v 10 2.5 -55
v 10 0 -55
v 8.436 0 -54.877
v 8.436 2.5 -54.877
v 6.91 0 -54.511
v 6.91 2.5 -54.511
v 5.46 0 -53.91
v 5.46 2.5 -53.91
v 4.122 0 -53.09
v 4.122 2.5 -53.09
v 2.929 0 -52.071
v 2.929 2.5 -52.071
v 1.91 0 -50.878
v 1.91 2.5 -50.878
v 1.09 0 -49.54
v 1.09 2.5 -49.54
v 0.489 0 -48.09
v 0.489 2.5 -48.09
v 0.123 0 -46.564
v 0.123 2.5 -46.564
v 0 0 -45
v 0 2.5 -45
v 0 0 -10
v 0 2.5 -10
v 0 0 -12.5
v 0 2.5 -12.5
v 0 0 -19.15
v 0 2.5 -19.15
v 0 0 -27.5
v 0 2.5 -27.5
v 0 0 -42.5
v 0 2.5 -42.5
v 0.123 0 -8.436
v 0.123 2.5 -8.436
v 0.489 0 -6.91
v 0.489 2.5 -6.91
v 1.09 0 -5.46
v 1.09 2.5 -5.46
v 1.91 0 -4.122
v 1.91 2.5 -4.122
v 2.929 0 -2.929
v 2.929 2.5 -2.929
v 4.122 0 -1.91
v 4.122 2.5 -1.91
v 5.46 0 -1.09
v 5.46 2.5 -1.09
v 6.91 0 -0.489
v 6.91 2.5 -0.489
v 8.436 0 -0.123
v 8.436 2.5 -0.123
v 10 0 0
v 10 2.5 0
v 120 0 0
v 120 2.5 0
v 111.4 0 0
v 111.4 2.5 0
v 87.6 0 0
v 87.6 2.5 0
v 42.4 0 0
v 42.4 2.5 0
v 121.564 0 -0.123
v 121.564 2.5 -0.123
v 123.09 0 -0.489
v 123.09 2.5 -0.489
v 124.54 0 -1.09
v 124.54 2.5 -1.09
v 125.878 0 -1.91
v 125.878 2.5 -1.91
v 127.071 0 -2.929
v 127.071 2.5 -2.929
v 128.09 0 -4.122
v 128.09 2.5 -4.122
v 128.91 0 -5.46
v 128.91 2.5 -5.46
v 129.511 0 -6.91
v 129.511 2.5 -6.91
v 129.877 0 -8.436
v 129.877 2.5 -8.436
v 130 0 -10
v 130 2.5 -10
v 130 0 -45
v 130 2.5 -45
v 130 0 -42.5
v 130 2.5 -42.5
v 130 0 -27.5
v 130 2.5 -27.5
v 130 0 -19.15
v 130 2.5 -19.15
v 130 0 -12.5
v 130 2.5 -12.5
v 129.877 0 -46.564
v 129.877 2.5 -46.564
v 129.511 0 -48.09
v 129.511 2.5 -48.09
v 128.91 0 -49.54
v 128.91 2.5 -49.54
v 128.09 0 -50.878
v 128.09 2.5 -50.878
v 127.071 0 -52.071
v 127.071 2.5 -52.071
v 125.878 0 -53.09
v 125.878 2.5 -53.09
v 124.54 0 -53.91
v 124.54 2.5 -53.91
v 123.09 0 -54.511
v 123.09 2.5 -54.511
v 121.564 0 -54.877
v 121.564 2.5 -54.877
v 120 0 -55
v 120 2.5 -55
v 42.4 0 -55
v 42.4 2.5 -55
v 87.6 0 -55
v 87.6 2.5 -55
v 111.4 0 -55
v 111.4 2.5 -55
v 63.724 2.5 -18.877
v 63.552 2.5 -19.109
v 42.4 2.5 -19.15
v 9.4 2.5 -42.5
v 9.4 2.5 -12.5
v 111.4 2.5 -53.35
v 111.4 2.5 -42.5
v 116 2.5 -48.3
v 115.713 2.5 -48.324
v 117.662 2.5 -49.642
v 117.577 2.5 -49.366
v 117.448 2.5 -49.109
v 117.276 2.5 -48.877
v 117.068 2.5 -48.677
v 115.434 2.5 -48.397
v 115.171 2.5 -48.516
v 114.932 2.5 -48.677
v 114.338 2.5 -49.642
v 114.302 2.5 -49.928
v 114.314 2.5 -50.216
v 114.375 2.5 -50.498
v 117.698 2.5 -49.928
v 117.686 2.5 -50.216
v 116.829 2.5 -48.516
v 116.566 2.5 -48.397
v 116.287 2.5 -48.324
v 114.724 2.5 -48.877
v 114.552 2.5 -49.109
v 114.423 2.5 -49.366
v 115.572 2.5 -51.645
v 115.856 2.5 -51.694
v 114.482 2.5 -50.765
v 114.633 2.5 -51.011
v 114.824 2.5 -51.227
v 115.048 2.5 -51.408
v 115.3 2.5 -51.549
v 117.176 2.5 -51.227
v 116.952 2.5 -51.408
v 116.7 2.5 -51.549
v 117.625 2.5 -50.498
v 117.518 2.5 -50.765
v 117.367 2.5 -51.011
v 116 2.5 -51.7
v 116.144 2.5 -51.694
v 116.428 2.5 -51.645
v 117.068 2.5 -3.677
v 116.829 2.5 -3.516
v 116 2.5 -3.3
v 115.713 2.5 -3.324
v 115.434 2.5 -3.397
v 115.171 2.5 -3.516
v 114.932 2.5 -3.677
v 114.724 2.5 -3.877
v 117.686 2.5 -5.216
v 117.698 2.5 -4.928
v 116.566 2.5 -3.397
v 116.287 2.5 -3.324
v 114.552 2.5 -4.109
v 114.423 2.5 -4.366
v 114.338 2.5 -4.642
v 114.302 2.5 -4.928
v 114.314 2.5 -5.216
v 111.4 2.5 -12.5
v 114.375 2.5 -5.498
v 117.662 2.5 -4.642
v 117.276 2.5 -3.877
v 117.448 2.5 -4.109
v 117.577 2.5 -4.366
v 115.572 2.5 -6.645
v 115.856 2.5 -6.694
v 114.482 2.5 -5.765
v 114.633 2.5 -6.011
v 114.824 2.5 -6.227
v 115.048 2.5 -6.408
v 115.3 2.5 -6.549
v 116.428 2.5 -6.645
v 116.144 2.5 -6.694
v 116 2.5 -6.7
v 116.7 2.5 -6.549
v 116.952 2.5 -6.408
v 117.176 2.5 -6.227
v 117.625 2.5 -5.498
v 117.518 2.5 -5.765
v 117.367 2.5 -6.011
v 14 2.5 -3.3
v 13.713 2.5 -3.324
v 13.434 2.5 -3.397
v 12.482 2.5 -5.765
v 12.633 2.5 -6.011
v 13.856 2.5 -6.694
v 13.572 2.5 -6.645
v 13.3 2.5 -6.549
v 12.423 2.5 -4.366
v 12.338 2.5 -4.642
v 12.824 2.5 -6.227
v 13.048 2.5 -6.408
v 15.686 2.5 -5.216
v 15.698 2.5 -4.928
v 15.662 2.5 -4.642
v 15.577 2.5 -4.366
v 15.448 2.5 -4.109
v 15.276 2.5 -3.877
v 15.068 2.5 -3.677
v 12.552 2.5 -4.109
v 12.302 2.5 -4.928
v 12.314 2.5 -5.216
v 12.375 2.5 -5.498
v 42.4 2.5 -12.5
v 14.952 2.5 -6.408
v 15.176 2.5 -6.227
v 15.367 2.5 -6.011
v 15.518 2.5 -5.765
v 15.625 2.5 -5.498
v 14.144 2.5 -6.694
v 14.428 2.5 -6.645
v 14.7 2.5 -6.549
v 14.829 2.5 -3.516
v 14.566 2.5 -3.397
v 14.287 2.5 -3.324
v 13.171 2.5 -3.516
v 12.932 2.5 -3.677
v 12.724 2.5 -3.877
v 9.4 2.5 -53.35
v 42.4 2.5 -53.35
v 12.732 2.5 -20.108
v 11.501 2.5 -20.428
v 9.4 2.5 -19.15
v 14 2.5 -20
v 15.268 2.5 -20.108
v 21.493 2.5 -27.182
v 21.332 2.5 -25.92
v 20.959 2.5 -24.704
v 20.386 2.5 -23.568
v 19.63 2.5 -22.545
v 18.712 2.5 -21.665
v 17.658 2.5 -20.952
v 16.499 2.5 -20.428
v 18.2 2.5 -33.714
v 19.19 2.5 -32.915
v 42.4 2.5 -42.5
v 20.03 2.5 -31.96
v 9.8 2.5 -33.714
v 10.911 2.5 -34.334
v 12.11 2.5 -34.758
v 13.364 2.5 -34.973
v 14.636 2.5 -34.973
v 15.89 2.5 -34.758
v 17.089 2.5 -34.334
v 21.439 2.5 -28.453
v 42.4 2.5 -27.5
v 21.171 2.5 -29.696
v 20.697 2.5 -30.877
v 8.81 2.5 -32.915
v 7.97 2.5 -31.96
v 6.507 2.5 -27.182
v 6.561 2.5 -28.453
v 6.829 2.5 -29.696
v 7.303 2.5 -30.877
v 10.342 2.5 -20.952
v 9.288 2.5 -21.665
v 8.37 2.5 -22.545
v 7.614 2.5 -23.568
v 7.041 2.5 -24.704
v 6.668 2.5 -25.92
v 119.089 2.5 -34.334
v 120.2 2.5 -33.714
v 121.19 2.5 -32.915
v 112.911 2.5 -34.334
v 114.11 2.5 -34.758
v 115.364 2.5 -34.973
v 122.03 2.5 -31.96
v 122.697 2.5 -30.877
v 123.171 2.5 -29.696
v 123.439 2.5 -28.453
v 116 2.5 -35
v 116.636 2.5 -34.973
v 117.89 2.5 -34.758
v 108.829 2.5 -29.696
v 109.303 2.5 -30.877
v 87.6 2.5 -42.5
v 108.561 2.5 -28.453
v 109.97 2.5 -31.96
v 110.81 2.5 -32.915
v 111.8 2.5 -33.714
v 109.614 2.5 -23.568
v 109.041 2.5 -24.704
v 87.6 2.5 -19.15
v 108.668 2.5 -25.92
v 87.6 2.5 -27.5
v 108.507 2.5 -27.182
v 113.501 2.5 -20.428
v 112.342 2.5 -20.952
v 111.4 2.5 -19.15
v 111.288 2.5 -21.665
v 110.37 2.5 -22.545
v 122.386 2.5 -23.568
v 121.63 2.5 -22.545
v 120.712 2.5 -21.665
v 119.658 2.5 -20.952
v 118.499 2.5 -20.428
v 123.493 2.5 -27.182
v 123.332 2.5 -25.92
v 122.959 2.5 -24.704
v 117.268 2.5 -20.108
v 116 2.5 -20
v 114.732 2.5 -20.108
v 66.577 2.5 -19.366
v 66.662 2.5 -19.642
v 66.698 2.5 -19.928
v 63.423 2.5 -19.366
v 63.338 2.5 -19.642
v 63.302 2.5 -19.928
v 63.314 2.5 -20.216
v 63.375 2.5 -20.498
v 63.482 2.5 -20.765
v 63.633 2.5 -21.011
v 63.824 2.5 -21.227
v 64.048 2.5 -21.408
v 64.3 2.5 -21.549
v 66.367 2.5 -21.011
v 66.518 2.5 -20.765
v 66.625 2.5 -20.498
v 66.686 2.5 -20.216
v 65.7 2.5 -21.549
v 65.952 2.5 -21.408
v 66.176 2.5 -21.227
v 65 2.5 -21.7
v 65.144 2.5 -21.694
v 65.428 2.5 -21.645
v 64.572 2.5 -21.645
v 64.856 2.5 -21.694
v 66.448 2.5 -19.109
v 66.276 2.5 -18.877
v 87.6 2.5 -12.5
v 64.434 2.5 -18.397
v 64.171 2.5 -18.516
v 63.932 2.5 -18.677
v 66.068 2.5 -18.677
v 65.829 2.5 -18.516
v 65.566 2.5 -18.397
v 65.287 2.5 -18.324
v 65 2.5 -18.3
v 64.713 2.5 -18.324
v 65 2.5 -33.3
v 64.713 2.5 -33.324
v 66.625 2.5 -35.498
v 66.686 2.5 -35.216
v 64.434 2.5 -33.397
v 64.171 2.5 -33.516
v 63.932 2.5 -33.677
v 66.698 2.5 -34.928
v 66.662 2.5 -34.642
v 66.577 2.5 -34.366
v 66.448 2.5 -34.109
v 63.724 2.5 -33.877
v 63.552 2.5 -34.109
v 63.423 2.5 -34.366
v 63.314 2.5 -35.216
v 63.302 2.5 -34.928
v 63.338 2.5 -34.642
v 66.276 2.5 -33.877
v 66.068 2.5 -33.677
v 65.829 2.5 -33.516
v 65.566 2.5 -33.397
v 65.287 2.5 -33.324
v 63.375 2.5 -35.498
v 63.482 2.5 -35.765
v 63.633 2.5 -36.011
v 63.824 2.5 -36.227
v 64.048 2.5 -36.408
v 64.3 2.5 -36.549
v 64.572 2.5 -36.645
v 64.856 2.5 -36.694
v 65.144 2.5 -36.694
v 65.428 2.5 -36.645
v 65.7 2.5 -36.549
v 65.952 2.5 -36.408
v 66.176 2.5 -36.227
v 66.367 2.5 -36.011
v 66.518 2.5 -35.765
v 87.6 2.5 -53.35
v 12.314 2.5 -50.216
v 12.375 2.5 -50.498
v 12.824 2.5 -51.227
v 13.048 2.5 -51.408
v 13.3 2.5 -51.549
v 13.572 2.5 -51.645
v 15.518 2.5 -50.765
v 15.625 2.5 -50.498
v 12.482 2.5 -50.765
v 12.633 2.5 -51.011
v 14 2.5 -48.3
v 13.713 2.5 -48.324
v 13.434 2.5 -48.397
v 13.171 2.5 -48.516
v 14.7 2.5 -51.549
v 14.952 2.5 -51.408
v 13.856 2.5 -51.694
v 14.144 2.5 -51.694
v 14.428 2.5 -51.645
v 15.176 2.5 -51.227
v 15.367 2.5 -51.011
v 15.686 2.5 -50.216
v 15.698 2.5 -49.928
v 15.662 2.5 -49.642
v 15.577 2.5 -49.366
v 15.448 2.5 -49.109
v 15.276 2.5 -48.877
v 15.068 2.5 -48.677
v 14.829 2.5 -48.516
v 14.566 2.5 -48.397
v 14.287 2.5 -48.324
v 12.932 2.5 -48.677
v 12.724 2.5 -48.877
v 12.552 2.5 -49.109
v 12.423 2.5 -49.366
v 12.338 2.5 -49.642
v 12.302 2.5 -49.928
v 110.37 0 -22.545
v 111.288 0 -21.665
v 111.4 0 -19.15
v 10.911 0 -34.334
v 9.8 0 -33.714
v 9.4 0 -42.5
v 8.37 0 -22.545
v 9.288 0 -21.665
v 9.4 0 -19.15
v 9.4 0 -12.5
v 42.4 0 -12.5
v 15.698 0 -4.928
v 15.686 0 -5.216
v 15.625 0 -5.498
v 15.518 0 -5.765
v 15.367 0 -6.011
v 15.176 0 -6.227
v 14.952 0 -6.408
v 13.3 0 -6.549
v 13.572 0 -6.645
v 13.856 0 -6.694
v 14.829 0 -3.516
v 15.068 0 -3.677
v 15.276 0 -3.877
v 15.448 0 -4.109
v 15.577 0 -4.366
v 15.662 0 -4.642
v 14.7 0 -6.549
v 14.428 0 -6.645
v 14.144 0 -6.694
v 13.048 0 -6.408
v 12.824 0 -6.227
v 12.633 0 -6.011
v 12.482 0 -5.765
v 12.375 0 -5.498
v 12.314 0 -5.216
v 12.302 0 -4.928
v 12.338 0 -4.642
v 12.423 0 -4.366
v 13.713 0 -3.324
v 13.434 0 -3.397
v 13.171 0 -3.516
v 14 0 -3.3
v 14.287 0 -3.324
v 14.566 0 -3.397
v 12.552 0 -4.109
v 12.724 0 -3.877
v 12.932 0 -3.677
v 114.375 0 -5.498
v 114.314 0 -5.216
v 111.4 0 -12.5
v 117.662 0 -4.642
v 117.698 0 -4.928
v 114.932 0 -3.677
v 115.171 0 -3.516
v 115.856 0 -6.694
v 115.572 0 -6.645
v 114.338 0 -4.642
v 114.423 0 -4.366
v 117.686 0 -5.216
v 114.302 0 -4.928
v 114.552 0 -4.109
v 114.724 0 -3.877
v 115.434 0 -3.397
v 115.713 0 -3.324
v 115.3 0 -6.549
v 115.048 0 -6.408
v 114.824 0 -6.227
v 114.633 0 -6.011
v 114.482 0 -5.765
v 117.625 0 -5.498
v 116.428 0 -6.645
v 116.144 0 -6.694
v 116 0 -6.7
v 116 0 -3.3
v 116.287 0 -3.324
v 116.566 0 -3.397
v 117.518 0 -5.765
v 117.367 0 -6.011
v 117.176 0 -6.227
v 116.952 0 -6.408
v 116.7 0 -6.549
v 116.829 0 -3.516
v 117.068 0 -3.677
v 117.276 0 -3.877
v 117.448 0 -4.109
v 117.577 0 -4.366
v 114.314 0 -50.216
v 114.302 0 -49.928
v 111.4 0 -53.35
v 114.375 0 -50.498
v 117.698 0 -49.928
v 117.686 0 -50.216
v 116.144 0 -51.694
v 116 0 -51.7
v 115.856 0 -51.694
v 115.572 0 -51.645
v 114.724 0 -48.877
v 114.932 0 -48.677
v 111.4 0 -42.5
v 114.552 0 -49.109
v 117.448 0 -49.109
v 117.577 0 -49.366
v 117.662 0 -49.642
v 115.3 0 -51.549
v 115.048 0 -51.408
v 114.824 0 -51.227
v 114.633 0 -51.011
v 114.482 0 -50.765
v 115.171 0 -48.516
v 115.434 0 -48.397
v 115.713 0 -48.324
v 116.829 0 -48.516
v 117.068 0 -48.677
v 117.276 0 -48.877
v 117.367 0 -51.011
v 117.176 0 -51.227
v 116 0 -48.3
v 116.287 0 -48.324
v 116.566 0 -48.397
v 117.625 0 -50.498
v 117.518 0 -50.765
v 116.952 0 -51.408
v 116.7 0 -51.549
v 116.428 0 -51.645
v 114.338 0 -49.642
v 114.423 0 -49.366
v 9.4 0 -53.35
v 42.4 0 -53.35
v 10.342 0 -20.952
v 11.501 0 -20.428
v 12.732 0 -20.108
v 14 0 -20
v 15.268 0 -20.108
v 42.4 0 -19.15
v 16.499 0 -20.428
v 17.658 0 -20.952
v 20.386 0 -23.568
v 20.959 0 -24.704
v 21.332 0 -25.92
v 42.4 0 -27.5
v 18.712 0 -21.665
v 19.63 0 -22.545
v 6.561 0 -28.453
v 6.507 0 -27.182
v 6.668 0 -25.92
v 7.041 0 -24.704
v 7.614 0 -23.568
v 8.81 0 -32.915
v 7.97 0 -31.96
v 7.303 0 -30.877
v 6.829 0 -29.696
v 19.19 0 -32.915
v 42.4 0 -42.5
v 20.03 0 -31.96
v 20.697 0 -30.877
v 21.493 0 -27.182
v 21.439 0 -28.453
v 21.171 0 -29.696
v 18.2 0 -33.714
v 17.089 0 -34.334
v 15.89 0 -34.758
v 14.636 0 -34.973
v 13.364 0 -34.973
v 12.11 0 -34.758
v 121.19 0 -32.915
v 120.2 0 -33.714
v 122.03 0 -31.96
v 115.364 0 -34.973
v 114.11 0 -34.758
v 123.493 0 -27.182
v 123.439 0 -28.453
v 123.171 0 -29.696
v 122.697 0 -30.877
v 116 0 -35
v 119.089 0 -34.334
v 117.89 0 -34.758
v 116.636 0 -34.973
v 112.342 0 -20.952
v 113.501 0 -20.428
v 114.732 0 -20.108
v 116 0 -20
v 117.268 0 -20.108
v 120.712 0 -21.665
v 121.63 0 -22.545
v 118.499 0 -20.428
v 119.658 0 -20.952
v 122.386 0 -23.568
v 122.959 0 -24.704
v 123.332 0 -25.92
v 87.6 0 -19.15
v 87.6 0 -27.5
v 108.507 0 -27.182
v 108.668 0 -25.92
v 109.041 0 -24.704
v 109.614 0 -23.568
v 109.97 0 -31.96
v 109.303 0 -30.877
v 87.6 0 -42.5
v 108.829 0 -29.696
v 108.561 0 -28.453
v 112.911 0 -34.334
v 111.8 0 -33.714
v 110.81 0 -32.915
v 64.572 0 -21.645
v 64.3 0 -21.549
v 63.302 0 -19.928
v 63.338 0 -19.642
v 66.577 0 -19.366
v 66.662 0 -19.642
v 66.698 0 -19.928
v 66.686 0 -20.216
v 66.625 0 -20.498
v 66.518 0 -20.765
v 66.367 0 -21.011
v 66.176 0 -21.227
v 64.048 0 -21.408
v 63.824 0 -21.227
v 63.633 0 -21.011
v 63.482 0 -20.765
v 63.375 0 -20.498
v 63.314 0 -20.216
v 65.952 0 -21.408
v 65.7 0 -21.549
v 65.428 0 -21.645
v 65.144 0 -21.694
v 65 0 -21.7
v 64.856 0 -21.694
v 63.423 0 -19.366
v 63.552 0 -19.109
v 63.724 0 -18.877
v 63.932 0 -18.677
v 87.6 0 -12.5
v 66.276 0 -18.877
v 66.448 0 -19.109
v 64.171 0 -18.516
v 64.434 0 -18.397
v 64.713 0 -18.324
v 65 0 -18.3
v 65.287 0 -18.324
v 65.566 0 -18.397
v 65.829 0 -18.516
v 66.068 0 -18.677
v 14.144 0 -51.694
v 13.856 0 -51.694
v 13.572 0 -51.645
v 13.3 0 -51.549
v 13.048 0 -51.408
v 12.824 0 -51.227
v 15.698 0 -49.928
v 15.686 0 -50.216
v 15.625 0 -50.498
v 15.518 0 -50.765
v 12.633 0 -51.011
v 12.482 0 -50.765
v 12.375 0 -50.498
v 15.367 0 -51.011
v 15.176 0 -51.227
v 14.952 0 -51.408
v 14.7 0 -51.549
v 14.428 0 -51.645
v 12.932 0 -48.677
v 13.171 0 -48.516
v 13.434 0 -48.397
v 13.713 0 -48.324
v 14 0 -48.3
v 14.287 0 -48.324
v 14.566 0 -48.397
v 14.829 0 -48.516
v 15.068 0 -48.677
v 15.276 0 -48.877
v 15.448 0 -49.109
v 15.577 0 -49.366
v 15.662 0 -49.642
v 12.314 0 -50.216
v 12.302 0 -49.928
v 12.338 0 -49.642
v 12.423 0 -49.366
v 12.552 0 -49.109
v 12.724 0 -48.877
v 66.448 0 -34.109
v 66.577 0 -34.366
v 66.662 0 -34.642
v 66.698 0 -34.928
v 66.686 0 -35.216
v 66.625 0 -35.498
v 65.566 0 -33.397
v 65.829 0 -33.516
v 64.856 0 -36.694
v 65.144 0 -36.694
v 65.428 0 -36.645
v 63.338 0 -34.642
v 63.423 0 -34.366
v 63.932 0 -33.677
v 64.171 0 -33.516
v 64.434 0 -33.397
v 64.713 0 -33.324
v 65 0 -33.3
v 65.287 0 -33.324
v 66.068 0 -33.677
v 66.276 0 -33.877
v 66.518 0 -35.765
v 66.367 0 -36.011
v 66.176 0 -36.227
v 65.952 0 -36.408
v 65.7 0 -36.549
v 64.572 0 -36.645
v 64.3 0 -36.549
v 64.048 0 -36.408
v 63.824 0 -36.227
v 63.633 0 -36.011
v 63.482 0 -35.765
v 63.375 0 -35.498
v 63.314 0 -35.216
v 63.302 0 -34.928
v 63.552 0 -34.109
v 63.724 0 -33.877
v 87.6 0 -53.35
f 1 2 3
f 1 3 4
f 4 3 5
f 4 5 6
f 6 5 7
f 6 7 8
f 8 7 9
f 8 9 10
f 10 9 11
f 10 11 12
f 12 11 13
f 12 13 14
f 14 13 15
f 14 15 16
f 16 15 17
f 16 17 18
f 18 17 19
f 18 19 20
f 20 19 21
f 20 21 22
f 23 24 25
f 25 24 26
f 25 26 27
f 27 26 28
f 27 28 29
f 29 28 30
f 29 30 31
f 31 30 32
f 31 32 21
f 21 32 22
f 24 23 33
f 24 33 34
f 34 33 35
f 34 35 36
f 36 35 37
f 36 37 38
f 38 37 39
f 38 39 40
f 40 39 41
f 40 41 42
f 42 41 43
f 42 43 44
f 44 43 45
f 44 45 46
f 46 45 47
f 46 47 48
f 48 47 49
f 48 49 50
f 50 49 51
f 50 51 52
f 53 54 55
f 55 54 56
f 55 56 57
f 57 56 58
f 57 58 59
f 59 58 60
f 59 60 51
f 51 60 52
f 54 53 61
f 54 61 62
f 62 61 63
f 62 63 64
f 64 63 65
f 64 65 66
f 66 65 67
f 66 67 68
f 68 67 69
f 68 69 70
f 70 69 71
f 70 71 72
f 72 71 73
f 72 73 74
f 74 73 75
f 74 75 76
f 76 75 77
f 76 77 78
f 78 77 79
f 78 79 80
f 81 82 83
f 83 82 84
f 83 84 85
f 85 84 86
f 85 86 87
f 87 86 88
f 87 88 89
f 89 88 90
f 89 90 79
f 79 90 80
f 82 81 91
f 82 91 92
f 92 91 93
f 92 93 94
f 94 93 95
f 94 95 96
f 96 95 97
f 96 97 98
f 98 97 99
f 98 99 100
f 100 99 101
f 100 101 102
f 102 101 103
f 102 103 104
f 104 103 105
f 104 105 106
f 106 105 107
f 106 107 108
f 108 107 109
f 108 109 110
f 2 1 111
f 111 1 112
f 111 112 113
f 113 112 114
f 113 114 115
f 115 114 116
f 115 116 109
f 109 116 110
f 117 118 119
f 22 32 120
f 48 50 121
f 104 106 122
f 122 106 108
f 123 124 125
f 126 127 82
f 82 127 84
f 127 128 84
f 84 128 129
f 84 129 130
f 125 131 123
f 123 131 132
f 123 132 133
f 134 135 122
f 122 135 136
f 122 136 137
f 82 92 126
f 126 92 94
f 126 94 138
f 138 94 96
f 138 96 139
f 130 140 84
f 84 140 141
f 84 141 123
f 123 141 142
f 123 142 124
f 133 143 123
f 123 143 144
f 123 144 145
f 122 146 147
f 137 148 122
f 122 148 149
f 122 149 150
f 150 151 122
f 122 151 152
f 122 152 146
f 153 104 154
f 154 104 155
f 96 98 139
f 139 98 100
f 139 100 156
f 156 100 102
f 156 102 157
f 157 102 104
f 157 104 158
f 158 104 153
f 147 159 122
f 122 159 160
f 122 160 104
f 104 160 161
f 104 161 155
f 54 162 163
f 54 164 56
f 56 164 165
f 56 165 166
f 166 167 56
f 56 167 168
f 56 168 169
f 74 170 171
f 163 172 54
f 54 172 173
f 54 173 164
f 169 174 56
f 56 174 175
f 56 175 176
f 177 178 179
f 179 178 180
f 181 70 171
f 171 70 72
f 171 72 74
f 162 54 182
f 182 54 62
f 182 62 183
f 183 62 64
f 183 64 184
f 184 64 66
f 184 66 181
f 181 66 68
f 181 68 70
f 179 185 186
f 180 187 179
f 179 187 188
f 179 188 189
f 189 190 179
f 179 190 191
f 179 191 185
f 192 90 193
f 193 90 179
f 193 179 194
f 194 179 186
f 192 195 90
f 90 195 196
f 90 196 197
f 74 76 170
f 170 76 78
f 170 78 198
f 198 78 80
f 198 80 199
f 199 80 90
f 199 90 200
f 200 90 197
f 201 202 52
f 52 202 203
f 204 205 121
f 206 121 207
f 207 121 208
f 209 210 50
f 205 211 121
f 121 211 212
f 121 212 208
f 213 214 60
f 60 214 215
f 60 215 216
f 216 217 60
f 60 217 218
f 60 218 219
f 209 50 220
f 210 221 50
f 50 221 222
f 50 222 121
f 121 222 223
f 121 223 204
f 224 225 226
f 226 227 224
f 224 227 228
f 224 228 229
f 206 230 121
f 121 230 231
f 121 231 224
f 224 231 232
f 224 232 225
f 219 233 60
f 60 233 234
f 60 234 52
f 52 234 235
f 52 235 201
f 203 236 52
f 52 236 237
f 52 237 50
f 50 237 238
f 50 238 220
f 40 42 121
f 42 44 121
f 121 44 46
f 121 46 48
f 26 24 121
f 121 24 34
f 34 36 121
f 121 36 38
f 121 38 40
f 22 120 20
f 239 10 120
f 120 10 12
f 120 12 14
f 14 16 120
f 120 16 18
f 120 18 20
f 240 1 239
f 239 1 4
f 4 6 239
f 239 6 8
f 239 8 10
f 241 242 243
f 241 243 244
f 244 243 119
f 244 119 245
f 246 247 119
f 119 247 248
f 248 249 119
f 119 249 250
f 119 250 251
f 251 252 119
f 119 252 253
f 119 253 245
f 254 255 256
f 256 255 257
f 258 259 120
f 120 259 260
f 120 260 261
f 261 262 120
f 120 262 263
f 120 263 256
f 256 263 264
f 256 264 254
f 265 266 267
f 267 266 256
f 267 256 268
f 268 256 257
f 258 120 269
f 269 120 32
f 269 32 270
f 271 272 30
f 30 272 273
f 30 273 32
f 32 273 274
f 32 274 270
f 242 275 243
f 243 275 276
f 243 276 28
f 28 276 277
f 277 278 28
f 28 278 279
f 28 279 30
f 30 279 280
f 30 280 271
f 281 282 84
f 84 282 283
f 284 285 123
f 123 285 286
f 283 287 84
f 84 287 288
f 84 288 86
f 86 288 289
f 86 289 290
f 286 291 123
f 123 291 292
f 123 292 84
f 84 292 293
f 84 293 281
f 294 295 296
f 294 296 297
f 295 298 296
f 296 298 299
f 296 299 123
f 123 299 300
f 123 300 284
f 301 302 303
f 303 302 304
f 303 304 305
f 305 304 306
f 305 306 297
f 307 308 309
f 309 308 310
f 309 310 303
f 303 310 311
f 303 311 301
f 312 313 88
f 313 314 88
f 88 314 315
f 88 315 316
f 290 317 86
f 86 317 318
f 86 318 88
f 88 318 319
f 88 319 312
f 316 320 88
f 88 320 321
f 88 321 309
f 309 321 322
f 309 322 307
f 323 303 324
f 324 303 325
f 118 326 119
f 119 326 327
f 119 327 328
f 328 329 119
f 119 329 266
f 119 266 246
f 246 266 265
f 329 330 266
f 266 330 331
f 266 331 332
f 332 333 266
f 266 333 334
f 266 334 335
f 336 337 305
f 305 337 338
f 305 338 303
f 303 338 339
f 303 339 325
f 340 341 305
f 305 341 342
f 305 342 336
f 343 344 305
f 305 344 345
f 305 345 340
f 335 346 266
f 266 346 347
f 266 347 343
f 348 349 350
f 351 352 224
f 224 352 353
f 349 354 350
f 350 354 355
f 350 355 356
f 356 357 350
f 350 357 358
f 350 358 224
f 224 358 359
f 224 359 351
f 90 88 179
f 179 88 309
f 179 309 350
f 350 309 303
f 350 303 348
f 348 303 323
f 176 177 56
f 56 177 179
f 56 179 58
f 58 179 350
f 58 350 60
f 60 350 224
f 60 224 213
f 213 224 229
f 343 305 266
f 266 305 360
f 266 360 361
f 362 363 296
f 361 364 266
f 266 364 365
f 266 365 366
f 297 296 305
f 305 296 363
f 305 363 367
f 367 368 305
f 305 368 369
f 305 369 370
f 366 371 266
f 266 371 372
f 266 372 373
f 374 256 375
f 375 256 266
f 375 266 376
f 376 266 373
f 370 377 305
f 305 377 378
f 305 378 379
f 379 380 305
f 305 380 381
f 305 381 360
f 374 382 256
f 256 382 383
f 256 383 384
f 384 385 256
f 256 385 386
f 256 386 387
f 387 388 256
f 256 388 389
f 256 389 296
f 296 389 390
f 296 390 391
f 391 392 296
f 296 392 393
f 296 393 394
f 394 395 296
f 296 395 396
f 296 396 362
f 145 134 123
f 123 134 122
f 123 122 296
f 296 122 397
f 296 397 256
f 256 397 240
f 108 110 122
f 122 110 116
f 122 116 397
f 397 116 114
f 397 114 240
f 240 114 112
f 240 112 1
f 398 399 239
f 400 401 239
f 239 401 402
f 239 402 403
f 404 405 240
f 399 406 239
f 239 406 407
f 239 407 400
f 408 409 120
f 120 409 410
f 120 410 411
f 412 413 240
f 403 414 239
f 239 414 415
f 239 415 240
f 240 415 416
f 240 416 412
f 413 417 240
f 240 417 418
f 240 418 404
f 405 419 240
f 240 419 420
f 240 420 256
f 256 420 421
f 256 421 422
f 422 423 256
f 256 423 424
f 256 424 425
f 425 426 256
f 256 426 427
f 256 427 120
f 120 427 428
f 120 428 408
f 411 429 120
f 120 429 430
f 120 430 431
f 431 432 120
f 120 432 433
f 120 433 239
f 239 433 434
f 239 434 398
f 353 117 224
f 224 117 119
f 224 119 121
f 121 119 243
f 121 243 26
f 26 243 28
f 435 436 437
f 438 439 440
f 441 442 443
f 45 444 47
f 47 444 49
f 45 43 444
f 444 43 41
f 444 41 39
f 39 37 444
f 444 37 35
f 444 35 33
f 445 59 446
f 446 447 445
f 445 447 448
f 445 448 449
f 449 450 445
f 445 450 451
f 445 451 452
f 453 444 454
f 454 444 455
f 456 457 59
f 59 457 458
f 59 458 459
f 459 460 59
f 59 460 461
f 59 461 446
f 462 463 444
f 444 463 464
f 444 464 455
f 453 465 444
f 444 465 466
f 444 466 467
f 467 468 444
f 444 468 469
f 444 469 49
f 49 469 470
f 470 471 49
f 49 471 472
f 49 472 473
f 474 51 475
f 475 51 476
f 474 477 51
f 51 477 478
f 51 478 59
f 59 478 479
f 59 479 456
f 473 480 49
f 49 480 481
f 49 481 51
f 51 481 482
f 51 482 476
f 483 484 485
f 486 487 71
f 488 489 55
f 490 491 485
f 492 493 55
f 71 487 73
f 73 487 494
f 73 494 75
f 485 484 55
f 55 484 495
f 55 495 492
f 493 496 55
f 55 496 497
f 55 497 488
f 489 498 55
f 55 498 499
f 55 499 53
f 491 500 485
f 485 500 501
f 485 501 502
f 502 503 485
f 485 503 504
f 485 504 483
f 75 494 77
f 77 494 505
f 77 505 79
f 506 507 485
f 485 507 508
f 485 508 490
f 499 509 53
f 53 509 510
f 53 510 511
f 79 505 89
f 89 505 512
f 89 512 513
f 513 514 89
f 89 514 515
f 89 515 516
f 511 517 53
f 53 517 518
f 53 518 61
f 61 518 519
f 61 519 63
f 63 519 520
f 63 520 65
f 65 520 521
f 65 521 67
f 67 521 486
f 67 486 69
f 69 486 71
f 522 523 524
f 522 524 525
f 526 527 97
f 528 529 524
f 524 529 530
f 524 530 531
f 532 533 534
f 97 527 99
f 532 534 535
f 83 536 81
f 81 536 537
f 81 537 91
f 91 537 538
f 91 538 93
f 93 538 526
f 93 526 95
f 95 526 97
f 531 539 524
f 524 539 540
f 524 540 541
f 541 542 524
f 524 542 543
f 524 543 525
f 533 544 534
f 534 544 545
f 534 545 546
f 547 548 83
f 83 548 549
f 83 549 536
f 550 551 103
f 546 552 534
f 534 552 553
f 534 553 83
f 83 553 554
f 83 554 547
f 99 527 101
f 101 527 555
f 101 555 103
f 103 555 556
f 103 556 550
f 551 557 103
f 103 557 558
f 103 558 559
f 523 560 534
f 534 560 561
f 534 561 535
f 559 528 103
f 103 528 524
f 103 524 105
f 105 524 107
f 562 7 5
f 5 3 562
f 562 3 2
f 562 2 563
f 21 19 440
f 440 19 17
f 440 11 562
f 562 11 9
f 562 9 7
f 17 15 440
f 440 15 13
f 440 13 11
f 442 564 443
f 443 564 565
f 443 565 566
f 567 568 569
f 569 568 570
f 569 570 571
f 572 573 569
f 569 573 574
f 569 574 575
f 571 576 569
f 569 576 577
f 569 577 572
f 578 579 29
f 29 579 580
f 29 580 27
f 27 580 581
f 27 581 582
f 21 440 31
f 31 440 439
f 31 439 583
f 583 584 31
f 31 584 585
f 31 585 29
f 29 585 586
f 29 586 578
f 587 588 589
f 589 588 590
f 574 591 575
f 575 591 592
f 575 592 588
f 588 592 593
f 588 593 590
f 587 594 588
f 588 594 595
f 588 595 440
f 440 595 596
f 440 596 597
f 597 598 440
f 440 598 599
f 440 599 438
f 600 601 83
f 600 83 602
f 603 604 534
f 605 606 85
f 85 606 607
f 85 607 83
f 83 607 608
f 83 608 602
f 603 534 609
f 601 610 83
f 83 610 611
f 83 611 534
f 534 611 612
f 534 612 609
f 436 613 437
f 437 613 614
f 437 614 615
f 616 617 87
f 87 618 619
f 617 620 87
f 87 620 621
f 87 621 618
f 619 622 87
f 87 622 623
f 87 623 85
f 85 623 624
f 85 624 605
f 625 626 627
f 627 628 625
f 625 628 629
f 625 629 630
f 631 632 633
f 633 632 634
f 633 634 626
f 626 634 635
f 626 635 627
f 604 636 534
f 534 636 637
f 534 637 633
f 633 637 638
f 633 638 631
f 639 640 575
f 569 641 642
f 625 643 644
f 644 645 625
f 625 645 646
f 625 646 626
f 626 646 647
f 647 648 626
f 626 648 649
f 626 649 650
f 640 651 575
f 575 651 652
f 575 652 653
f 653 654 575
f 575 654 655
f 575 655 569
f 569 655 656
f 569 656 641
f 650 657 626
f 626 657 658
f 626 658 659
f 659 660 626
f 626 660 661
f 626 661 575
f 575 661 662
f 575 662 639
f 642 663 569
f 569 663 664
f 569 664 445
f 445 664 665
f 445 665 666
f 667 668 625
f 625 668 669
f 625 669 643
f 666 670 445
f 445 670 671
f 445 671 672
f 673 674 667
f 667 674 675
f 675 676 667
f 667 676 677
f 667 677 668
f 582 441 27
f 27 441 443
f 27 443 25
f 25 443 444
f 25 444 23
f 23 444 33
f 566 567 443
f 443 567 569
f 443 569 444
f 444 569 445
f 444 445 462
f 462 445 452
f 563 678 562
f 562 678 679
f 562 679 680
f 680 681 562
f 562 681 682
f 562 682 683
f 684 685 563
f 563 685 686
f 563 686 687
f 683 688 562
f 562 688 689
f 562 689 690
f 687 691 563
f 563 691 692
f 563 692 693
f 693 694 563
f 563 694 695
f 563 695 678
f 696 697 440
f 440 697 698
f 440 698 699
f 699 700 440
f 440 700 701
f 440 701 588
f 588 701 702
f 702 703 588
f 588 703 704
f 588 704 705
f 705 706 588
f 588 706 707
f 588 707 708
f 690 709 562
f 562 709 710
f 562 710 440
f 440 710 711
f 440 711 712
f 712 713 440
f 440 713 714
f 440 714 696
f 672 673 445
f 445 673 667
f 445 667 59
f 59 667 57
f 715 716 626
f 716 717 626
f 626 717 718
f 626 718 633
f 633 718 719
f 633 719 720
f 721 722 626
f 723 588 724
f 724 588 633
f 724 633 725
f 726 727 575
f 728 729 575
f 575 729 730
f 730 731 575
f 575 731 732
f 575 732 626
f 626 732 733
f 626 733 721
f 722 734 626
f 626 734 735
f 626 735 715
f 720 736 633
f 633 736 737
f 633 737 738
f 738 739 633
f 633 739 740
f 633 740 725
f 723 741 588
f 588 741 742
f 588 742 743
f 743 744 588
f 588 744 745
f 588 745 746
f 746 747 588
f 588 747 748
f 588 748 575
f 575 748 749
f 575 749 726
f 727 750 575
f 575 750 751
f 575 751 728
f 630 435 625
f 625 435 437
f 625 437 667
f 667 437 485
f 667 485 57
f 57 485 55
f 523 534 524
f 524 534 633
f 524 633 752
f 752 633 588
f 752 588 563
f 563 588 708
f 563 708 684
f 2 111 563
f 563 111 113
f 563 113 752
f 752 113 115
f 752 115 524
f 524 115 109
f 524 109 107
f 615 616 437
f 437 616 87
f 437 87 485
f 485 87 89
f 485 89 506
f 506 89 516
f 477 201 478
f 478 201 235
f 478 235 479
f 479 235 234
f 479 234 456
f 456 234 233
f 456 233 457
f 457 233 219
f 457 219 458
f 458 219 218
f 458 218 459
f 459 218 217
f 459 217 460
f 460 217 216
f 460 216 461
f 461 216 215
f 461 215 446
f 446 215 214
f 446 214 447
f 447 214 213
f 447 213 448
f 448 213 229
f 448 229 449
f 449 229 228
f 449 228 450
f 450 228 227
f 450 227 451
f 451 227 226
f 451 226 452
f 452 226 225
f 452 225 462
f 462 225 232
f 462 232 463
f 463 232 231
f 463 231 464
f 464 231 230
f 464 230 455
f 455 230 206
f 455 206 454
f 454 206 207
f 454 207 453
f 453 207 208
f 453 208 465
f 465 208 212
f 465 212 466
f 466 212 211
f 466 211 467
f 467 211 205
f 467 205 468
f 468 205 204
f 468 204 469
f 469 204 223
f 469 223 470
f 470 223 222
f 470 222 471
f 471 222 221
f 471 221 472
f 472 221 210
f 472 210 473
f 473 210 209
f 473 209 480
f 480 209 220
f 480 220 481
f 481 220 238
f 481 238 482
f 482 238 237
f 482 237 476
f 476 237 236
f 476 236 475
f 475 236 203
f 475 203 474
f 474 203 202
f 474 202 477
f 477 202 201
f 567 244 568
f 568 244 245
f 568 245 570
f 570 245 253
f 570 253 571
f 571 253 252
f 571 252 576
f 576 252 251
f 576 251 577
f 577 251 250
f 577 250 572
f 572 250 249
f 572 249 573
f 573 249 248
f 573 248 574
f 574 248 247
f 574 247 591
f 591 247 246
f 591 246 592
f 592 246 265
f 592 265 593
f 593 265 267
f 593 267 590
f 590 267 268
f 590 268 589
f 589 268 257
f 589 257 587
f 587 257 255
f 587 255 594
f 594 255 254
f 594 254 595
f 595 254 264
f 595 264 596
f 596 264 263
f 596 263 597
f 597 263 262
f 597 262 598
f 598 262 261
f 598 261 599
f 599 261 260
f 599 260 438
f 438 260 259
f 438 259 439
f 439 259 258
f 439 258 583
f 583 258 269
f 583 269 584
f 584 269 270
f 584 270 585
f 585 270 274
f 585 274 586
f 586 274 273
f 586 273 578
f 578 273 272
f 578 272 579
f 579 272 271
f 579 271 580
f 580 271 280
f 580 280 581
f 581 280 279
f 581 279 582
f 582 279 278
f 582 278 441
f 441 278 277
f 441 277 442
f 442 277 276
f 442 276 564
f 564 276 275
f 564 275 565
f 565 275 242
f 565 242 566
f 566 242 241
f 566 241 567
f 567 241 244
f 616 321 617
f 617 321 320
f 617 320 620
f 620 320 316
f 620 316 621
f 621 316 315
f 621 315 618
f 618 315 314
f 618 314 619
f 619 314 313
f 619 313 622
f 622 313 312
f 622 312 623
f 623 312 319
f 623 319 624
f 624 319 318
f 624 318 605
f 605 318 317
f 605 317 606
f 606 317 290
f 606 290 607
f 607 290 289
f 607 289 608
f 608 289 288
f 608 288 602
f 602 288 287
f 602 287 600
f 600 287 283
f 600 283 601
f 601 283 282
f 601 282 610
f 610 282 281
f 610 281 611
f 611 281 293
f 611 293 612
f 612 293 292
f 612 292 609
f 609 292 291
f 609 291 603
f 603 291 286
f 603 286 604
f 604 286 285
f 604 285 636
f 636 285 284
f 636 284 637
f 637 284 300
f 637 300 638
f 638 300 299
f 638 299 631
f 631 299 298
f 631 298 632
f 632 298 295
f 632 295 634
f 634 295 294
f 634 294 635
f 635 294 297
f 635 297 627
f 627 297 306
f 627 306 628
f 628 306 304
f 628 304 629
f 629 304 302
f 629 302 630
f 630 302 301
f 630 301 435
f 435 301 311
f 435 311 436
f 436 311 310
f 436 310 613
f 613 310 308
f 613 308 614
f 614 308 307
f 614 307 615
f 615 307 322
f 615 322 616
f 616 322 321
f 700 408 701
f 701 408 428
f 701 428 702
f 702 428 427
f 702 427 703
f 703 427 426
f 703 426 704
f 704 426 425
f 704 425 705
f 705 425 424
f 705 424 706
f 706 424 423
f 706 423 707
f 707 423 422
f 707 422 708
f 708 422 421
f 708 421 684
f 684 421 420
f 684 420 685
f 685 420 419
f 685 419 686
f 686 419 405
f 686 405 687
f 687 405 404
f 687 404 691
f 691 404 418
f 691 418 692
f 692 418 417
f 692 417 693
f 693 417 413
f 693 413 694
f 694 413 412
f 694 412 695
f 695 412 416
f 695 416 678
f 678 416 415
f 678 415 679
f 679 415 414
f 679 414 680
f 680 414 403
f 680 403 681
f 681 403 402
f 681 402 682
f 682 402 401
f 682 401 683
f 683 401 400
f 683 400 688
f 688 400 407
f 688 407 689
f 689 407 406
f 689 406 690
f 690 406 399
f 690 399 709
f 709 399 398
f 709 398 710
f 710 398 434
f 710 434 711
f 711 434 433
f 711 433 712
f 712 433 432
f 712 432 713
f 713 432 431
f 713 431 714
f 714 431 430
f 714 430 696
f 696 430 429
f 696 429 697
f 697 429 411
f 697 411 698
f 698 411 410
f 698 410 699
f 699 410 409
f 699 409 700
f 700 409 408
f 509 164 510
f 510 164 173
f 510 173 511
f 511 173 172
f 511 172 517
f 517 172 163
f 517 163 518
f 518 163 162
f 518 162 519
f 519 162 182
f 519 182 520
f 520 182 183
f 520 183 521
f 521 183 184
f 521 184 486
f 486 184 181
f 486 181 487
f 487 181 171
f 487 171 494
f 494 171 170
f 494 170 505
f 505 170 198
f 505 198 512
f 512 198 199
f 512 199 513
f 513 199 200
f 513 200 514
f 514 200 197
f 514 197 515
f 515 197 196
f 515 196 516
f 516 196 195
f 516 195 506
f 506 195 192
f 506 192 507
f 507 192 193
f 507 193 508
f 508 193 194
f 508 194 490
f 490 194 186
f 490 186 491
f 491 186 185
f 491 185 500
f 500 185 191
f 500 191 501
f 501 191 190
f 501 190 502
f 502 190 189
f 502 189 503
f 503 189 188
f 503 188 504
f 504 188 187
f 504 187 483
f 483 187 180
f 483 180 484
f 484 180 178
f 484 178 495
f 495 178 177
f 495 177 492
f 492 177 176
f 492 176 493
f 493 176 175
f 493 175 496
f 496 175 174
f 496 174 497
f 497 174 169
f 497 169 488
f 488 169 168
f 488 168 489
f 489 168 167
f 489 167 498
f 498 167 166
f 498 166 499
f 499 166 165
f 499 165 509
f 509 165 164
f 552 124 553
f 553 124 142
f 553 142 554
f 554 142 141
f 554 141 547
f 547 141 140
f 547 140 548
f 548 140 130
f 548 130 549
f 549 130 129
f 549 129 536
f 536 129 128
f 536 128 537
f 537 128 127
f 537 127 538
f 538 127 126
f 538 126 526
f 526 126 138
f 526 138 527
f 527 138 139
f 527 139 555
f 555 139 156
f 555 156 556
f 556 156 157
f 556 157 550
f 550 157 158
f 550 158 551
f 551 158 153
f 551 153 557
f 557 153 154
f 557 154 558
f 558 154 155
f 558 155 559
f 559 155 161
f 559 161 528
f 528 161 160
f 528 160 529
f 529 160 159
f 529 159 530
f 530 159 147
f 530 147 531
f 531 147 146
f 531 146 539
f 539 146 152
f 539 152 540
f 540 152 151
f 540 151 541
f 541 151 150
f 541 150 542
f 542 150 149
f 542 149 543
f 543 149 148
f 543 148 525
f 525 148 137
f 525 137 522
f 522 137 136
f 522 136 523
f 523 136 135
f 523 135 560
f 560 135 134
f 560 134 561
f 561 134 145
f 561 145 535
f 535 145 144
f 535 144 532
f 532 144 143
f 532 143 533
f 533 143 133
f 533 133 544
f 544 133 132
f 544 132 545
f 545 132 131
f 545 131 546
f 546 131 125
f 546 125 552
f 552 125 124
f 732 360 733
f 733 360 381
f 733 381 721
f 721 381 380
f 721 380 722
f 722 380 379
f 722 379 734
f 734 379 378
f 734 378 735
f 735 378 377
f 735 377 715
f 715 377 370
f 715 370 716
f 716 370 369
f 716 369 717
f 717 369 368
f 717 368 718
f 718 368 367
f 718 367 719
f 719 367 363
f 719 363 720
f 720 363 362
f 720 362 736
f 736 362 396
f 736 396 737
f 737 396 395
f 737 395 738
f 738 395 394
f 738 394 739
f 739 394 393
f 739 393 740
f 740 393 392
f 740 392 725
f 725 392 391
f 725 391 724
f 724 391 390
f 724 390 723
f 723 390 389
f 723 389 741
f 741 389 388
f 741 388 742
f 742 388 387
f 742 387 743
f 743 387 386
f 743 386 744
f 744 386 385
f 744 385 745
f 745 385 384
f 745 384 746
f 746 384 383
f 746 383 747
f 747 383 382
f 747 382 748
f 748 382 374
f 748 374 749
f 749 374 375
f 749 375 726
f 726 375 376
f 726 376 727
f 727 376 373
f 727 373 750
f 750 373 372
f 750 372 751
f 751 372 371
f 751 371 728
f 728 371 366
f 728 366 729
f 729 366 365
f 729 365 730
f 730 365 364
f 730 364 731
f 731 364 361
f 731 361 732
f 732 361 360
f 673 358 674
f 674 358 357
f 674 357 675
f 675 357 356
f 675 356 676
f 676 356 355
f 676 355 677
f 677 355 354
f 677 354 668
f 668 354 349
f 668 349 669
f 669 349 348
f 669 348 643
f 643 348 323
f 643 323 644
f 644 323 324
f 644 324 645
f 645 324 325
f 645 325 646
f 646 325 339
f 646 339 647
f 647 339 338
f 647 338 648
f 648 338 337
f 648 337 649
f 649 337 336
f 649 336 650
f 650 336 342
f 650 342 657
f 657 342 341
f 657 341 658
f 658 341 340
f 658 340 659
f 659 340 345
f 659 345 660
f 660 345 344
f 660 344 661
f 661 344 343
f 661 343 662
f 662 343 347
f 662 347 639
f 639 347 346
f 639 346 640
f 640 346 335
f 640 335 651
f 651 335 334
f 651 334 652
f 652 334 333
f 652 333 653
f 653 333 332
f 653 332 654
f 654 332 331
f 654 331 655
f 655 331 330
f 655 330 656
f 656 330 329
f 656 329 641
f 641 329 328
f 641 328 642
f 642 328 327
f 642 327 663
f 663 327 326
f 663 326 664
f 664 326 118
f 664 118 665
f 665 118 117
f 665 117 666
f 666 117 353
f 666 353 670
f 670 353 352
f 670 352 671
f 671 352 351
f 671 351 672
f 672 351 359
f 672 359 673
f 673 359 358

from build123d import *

# Parameters (mm, degrees)
BOSS_EXTRUDE1_DEPTH = 2.5
SKETCH2_R           = 1.7
SKETCH2_R_2         = 7.5
CUT_EXTRUDE1_DEPTH  = 142.178079035


with BuildPart() as part:
    # Sketch1 → Boss-Extrude1 (new body)
    with BuildSketch(Plane(origin=(0, 0, 0), x_dir=(1, 0, 0), z_dir=(0, 1, 0))):
        with BuildLine():
            Line((10, 0), (120, 0))
            ThreePointArc((120, 0), (127.071067812, 2.928932188), (130, 10))
            Line((130, 10), (130, 45))
            ThreePointArc((130, 45), (127.071067812, 52.071067812), (120, 55))
            Line((120, 55), (10, 55))
            ThreePointArc((10, 55), (2.928932188, 52.071067812), (0, 45))
            Line((0, 45), (0, 10))
            ThreePointArc((0, 10), (2.928932188, 2.928932188), (10, 0))
        make_face()
    extrude(amount=BOSS_EXTRUDE1_DEPTH)

    # Sketch2 → Cut-Extrude1 (cut, through all)
    with BuildSketch(Plane(origin=(0, 2.5, 0), x_dir=(1, 0, 0), z_dir=(0, 1, 0))):
        with Locations(Location((14, 5, 0), (0, 0, 270))):
            Circle(SKETCH2_R)
        with Locations(Location((14, 50, 0), (0, 0, 270))):
            Circle(SKETCH2_R)
        with Locations(Location((116, 5, 0), (0, 0, 90))):
            Circle(SKETCH2_R)
        with Locations(Location((116, 50, 0), (0, 0, 90))):
            Circle(SKETCH2_R)
        with Locations(Location((14, 27.5, 0), (0, 0, 270))):
            Circle(SKETCH2_R_2)
        with Locations(Location((116, 27.5, 0), (0, 0, 90))):
            Circle(SKETCH2_R_2)
        with Locations(Location((65, 35, 0), (0, 0, 270))):
            Circle(SKETCH2_R)
        with Locations(Location((65, 20, 0), (0, 0, 90))):
            Circle(SKETCH2_R)
    extrude(amount=-CUT_EXTRUDE1_DEPTH, mode=Mode.SUBTRACT)


solid = part.part
